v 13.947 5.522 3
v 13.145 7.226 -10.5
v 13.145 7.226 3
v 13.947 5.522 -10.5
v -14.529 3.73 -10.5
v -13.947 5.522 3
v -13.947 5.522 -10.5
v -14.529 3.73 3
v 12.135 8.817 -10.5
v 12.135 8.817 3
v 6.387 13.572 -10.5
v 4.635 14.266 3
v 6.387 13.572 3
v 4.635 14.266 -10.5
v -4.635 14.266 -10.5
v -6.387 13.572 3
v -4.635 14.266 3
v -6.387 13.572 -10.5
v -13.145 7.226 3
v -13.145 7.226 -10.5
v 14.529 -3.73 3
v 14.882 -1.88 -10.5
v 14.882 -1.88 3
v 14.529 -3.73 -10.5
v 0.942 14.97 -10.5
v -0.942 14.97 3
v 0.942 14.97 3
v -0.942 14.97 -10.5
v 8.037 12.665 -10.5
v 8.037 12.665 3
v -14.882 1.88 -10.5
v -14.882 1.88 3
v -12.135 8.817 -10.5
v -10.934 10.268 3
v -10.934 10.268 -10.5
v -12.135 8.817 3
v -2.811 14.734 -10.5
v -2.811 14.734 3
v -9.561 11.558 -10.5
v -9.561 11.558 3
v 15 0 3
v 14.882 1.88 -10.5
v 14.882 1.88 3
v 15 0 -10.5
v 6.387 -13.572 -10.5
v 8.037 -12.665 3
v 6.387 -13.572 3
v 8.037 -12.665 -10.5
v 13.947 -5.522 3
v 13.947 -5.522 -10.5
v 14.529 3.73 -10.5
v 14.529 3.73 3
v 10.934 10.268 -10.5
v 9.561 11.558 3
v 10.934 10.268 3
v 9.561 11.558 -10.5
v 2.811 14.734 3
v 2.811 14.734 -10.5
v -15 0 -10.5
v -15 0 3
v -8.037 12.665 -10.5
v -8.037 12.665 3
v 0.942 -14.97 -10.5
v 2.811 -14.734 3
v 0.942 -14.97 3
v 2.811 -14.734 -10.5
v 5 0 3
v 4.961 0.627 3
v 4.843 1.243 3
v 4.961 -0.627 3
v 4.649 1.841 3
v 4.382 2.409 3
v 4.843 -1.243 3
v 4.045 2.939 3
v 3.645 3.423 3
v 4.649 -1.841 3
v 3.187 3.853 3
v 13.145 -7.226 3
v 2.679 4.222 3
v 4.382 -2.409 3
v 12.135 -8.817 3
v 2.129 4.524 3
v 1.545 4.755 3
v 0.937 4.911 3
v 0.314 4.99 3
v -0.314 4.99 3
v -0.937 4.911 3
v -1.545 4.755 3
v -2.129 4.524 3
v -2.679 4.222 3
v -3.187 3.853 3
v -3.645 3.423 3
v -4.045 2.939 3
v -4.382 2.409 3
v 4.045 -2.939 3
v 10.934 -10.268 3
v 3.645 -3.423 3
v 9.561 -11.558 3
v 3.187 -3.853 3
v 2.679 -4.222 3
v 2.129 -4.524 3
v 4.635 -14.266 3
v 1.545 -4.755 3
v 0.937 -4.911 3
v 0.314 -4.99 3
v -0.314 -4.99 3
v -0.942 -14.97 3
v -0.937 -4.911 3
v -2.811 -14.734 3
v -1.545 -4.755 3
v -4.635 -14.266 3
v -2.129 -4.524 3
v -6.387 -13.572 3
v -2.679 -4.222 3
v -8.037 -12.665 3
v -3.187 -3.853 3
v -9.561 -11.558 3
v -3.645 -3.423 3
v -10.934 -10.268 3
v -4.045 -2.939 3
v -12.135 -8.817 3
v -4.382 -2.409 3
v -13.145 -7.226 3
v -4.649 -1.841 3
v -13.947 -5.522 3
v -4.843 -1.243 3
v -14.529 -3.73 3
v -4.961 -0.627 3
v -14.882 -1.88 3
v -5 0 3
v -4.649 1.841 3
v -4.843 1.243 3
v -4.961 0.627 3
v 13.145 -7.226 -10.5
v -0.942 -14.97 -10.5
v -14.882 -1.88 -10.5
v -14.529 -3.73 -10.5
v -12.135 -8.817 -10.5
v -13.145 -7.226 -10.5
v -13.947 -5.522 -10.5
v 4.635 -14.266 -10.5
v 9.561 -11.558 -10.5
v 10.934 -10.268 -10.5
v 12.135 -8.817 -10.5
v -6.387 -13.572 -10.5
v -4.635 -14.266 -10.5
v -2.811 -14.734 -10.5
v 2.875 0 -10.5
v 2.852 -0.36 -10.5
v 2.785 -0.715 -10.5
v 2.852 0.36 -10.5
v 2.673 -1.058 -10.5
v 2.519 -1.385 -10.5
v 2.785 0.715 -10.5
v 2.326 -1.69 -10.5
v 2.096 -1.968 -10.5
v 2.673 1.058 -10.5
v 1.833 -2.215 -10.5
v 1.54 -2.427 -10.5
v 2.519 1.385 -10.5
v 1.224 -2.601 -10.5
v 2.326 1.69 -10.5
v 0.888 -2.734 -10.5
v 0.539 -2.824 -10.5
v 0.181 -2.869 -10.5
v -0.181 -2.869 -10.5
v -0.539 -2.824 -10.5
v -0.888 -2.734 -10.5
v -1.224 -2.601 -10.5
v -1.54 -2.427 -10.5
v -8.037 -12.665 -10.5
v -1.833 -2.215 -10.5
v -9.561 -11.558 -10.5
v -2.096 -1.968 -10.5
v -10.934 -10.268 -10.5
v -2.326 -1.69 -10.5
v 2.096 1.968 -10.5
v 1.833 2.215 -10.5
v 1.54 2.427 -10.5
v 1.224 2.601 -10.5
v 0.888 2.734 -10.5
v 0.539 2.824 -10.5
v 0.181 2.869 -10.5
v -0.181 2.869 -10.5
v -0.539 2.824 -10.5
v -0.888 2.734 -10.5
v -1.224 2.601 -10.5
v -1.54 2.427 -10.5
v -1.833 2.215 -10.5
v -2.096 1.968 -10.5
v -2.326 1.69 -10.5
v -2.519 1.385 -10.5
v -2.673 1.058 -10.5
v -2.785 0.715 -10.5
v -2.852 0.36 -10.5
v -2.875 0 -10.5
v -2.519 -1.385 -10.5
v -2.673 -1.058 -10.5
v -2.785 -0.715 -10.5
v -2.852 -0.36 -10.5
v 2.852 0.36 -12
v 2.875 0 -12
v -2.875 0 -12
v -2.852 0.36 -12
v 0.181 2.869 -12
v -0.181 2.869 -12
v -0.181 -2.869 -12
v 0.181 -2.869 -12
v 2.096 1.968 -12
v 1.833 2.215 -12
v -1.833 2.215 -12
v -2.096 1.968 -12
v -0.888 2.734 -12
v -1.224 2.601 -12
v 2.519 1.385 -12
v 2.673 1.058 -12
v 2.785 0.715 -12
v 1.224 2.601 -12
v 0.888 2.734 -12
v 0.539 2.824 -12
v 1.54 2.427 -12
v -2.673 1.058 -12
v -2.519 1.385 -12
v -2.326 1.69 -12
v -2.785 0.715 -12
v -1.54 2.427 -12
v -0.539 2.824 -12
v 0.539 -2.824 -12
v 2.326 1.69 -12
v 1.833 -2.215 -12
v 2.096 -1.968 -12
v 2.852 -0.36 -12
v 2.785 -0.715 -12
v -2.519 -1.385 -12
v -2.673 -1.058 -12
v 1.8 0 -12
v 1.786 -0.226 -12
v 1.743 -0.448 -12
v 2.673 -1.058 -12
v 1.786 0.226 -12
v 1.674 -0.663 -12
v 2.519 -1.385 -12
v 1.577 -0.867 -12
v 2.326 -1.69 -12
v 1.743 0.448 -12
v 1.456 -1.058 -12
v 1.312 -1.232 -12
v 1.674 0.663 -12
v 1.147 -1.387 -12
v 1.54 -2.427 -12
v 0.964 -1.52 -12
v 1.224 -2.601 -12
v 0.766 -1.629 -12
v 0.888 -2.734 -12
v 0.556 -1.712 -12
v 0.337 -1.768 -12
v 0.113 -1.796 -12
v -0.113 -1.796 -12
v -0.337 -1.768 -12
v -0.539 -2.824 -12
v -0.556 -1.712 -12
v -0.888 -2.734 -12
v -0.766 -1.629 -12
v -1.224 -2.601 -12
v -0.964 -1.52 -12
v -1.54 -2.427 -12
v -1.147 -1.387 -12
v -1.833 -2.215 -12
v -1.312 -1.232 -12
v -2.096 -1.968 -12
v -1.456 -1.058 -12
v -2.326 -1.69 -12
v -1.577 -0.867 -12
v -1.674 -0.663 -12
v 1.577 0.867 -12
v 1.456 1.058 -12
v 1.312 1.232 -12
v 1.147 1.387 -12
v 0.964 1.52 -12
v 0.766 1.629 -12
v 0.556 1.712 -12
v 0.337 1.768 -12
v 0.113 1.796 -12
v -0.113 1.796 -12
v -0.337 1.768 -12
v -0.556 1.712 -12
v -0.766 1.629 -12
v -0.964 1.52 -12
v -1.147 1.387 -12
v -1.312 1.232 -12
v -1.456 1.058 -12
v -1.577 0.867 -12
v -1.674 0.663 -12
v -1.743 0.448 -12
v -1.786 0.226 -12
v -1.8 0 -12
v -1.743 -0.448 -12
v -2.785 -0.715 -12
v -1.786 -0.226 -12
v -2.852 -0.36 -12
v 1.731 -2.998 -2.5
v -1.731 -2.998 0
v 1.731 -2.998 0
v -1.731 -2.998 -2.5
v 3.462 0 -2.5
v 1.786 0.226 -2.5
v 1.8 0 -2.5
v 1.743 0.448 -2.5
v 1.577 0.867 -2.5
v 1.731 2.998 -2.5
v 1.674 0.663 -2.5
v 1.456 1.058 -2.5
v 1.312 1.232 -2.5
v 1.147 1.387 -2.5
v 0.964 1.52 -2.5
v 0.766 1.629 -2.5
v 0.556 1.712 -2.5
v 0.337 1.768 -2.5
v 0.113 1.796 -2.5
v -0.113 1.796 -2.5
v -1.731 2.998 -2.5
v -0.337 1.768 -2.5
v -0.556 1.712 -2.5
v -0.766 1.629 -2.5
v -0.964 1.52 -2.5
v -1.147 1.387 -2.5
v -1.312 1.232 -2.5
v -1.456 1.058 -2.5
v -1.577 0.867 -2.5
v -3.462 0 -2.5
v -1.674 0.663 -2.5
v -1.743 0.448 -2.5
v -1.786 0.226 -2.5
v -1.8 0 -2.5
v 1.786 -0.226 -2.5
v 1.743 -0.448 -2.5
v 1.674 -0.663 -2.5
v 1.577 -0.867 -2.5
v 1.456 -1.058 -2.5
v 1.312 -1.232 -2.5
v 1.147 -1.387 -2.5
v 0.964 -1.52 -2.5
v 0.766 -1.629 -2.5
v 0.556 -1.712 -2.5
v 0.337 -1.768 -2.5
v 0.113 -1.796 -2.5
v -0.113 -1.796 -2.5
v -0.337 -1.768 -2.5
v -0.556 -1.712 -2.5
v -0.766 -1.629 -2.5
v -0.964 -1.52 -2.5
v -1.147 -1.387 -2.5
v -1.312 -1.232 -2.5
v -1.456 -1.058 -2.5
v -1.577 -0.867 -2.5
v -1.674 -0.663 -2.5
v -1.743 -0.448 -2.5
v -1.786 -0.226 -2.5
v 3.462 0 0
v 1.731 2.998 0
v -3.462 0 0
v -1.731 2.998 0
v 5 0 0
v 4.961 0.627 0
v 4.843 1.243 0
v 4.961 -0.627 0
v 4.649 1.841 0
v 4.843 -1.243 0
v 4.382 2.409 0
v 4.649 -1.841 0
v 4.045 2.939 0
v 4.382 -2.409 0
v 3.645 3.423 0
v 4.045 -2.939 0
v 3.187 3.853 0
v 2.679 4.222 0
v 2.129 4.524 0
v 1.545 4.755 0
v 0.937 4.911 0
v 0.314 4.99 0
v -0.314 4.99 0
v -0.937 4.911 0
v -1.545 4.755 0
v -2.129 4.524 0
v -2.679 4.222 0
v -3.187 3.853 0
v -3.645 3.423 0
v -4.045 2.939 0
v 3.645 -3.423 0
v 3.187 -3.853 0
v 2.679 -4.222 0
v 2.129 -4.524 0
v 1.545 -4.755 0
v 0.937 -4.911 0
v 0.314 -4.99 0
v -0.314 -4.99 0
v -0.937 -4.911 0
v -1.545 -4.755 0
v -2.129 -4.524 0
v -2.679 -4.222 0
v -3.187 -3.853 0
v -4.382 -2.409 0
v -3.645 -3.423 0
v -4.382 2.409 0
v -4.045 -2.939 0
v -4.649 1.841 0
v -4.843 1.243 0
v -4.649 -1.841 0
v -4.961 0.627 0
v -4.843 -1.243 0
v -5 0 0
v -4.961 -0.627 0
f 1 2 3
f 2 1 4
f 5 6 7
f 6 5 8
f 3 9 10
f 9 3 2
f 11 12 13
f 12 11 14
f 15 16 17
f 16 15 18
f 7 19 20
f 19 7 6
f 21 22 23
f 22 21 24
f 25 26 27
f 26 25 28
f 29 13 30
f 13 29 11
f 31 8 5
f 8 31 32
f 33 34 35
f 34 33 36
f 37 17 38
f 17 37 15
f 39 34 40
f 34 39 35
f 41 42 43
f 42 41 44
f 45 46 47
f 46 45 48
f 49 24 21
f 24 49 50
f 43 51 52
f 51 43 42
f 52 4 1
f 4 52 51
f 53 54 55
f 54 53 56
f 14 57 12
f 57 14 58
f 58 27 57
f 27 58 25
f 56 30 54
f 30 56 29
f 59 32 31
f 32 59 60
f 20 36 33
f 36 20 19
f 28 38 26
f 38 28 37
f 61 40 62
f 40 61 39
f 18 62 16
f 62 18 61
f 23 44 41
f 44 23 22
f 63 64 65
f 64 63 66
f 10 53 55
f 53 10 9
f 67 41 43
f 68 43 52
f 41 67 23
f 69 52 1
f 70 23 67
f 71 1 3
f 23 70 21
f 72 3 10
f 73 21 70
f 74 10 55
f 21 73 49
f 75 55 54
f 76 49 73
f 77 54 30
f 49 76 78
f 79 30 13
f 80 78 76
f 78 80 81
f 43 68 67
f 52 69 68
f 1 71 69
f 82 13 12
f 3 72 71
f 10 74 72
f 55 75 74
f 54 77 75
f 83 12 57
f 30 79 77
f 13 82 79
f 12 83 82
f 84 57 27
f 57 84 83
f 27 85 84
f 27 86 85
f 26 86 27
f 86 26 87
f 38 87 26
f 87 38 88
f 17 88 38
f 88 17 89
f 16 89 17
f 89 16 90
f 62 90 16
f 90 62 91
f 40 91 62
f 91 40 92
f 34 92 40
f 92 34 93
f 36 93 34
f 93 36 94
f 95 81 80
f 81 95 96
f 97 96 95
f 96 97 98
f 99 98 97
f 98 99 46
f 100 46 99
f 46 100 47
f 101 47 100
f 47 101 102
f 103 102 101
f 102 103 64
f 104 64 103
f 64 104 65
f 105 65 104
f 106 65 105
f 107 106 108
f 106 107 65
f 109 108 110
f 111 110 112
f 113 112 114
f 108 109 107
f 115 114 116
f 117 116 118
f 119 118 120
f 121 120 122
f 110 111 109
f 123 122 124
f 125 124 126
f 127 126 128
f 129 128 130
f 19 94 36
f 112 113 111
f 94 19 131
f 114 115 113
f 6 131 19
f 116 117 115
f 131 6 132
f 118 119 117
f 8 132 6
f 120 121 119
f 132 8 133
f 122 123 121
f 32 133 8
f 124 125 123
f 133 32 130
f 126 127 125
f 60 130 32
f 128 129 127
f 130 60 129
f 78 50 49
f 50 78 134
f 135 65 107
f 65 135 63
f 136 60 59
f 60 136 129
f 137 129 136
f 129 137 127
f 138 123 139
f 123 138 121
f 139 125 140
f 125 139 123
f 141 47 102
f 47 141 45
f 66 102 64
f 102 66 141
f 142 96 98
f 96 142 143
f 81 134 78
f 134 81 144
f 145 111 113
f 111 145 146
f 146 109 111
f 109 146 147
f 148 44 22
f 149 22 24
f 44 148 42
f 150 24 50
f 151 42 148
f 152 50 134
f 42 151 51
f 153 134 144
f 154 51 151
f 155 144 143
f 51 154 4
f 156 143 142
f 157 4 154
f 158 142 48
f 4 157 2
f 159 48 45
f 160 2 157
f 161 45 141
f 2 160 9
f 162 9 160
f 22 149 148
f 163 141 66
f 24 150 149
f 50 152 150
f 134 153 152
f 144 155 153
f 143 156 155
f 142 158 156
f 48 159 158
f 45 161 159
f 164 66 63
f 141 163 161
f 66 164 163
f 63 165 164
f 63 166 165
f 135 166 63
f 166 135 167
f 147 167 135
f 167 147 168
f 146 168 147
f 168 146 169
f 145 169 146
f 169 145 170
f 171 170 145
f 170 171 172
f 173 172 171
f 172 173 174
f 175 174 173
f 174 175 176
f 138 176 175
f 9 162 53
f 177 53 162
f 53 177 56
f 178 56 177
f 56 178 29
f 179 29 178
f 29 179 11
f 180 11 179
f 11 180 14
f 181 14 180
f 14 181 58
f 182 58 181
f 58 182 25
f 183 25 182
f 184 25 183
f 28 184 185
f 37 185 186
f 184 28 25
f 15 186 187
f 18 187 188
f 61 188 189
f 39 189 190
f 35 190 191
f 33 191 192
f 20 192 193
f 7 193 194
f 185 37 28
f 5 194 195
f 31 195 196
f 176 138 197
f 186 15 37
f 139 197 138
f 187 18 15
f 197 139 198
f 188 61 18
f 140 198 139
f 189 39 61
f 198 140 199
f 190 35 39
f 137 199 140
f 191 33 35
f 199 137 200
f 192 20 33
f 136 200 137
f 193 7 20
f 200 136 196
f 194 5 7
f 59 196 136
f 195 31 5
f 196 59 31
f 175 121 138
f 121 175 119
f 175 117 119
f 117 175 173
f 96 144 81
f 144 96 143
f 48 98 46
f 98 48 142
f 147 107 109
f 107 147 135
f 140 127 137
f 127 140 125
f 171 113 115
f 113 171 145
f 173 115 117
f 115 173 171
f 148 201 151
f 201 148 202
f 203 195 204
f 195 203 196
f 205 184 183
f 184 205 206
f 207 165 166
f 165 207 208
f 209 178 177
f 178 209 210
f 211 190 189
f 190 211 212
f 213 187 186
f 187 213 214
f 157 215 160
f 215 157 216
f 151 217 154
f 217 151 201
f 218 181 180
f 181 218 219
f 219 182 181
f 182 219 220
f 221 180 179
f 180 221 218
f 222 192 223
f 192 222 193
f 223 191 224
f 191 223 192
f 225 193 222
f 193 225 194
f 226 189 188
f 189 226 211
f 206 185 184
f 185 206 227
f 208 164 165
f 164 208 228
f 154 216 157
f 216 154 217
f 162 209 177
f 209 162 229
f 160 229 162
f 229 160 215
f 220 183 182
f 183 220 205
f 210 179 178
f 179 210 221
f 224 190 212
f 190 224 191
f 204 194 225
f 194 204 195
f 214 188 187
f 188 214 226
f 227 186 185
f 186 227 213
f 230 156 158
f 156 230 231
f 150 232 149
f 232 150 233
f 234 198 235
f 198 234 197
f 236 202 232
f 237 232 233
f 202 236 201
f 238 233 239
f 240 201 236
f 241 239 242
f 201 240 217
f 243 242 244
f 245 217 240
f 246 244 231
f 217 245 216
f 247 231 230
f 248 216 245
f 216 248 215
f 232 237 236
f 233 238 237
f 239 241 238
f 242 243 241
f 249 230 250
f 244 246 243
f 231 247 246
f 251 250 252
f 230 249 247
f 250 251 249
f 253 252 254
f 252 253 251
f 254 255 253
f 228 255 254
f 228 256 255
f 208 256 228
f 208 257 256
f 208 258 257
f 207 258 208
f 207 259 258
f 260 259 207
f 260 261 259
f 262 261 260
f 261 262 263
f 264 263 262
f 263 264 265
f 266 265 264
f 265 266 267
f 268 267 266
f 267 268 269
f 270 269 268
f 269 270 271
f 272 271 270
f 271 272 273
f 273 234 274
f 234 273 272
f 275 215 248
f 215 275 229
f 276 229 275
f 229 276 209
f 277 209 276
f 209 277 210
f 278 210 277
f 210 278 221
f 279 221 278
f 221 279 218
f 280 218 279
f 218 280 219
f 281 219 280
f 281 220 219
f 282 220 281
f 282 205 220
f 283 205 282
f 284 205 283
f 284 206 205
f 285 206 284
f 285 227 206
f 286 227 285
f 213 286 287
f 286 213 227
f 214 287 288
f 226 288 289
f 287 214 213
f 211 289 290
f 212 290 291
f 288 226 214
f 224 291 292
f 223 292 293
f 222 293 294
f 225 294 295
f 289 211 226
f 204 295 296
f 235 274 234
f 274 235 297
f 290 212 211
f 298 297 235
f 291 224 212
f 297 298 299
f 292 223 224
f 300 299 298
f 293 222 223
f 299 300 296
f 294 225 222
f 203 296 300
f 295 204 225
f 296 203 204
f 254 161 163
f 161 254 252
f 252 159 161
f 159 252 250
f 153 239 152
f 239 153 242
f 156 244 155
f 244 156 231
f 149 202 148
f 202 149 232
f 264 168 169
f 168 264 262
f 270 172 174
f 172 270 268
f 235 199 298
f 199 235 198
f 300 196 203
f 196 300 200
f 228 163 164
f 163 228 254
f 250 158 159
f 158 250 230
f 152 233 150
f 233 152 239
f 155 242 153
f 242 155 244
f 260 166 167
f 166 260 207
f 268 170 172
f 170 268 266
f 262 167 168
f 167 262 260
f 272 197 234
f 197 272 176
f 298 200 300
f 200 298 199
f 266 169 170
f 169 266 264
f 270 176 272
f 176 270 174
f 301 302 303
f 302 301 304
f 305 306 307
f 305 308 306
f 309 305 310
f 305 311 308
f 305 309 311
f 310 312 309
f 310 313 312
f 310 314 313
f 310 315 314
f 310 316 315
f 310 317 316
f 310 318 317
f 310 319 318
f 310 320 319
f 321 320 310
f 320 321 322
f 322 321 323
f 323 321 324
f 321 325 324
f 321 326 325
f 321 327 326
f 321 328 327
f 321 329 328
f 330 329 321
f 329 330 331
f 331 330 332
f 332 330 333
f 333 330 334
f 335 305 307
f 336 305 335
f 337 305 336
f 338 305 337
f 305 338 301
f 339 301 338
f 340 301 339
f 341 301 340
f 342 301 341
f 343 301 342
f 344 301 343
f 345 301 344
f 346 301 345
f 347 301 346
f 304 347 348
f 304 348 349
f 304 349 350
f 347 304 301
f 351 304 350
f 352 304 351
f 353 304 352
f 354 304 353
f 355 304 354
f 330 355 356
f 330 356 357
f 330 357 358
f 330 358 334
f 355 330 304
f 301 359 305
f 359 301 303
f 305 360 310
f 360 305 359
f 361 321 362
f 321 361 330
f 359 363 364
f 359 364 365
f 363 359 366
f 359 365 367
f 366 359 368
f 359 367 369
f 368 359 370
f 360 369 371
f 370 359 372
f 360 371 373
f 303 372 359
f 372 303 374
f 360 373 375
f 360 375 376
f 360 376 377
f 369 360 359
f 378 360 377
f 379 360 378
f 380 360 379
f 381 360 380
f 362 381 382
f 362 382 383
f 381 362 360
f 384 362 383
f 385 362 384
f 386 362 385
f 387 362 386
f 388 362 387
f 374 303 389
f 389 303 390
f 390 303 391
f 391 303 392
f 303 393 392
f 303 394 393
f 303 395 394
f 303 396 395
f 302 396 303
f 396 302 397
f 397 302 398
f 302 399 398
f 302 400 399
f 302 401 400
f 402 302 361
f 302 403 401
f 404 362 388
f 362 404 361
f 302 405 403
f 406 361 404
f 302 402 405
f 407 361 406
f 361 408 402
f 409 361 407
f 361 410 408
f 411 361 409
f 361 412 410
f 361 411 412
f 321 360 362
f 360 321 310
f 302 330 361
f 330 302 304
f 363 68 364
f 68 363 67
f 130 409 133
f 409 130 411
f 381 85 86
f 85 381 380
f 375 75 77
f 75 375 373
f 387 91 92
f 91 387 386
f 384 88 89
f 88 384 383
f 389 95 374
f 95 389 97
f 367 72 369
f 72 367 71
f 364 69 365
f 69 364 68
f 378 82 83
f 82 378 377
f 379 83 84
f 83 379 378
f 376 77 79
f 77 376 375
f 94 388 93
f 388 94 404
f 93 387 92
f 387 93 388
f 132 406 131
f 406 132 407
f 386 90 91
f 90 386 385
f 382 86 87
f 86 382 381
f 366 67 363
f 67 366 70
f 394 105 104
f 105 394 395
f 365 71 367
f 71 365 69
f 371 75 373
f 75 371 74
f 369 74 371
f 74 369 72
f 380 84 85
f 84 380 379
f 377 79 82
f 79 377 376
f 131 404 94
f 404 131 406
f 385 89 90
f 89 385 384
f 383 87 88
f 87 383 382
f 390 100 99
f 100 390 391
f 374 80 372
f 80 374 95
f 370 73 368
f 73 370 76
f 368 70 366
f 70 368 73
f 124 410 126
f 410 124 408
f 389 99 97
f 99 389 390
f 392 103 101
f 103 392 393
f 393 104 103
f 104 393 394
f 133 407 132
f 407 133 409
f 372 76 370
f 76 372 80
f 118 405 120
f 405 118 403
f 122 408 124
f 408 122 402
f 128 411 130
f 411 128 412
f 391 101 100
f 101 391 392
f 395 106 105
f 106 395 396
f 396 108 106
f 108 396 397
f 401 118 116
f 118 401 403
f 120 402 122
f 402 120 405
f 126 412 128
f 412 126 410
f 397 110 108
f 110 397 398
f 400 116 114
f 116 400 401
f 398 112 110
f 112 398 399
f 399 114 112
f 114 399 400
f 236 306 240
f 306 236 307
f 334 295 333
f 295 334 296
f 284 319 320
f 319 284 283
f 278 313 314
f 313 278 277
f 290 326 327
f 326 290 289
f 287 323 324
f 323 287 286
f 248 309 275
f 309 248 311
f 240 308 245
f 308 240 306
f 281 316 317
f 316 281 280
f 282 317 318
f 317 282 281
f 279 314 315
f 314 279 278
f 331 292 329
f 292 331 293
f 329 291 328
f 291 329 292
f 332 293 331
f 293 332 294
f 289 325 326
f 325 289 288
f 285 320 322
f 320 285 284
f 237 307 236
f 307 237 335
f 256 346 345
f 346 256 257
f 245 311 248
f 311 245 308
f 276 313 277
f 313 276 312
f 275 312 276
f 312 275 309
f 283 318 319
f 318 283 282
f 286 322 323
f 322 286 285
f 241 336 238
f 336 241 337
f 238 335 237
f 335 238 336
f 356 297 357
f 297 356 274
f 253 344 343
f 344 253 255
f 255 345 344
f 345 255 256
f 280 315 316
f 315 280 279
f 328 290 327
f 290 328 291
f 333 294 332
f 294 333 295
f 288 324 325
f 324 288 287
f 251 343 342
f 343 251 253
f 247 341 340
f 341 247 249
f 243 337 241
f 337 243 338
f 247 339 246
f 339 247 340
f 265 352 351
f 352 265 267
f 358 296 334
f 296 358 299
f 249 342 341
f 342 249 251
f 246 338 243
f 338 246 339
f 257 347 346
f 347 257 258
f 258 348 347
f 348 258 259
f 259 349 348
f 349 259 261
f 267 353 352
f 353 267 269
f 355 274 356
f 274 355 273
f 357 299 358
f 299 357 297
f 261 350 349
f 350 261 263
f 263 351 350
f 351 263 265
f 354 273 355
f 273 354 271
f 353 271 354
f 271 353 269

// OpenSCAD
$fn = 50;


difference() {
	union() {
		translate(v = [0, 0, -10.5000000000]) {
			cylinder(h = 13.5000000000, r = 15.0000000000);
		}
		#translate(v = [0, 0, -12.0000000000]) {
			cylinder(h = 12, r = 2.8750000000);
		}
	}
	union() {
		translate(v = [0, 0, 0]) {
			rotate(a = [0, 0, 0]) {
				difference() {
					union() {
						translate(v = [0, 0, -2.5000000000]) {
							linear_extrude(height = 2.5000000000) {
								polygon(points = [[3.4620000000, 0.0000000000], [1.7310000000, 2.9981799479], [-1.7310000000, 2.9981799479], [-3.4620000000, 0.0000000000], [-1.7310000000, -2.9981799479], [1.7310000000, -2.9981799479]]);
							}
						}
					}
					union();
				}
			}
		}
		#cylinder(h = 3, r = 5.0000000000);
		#translate(v = [0, 0, -100.0000000000]) {
			cylinder(h = 200, r = 1.8000000000);
		}
	}
}
